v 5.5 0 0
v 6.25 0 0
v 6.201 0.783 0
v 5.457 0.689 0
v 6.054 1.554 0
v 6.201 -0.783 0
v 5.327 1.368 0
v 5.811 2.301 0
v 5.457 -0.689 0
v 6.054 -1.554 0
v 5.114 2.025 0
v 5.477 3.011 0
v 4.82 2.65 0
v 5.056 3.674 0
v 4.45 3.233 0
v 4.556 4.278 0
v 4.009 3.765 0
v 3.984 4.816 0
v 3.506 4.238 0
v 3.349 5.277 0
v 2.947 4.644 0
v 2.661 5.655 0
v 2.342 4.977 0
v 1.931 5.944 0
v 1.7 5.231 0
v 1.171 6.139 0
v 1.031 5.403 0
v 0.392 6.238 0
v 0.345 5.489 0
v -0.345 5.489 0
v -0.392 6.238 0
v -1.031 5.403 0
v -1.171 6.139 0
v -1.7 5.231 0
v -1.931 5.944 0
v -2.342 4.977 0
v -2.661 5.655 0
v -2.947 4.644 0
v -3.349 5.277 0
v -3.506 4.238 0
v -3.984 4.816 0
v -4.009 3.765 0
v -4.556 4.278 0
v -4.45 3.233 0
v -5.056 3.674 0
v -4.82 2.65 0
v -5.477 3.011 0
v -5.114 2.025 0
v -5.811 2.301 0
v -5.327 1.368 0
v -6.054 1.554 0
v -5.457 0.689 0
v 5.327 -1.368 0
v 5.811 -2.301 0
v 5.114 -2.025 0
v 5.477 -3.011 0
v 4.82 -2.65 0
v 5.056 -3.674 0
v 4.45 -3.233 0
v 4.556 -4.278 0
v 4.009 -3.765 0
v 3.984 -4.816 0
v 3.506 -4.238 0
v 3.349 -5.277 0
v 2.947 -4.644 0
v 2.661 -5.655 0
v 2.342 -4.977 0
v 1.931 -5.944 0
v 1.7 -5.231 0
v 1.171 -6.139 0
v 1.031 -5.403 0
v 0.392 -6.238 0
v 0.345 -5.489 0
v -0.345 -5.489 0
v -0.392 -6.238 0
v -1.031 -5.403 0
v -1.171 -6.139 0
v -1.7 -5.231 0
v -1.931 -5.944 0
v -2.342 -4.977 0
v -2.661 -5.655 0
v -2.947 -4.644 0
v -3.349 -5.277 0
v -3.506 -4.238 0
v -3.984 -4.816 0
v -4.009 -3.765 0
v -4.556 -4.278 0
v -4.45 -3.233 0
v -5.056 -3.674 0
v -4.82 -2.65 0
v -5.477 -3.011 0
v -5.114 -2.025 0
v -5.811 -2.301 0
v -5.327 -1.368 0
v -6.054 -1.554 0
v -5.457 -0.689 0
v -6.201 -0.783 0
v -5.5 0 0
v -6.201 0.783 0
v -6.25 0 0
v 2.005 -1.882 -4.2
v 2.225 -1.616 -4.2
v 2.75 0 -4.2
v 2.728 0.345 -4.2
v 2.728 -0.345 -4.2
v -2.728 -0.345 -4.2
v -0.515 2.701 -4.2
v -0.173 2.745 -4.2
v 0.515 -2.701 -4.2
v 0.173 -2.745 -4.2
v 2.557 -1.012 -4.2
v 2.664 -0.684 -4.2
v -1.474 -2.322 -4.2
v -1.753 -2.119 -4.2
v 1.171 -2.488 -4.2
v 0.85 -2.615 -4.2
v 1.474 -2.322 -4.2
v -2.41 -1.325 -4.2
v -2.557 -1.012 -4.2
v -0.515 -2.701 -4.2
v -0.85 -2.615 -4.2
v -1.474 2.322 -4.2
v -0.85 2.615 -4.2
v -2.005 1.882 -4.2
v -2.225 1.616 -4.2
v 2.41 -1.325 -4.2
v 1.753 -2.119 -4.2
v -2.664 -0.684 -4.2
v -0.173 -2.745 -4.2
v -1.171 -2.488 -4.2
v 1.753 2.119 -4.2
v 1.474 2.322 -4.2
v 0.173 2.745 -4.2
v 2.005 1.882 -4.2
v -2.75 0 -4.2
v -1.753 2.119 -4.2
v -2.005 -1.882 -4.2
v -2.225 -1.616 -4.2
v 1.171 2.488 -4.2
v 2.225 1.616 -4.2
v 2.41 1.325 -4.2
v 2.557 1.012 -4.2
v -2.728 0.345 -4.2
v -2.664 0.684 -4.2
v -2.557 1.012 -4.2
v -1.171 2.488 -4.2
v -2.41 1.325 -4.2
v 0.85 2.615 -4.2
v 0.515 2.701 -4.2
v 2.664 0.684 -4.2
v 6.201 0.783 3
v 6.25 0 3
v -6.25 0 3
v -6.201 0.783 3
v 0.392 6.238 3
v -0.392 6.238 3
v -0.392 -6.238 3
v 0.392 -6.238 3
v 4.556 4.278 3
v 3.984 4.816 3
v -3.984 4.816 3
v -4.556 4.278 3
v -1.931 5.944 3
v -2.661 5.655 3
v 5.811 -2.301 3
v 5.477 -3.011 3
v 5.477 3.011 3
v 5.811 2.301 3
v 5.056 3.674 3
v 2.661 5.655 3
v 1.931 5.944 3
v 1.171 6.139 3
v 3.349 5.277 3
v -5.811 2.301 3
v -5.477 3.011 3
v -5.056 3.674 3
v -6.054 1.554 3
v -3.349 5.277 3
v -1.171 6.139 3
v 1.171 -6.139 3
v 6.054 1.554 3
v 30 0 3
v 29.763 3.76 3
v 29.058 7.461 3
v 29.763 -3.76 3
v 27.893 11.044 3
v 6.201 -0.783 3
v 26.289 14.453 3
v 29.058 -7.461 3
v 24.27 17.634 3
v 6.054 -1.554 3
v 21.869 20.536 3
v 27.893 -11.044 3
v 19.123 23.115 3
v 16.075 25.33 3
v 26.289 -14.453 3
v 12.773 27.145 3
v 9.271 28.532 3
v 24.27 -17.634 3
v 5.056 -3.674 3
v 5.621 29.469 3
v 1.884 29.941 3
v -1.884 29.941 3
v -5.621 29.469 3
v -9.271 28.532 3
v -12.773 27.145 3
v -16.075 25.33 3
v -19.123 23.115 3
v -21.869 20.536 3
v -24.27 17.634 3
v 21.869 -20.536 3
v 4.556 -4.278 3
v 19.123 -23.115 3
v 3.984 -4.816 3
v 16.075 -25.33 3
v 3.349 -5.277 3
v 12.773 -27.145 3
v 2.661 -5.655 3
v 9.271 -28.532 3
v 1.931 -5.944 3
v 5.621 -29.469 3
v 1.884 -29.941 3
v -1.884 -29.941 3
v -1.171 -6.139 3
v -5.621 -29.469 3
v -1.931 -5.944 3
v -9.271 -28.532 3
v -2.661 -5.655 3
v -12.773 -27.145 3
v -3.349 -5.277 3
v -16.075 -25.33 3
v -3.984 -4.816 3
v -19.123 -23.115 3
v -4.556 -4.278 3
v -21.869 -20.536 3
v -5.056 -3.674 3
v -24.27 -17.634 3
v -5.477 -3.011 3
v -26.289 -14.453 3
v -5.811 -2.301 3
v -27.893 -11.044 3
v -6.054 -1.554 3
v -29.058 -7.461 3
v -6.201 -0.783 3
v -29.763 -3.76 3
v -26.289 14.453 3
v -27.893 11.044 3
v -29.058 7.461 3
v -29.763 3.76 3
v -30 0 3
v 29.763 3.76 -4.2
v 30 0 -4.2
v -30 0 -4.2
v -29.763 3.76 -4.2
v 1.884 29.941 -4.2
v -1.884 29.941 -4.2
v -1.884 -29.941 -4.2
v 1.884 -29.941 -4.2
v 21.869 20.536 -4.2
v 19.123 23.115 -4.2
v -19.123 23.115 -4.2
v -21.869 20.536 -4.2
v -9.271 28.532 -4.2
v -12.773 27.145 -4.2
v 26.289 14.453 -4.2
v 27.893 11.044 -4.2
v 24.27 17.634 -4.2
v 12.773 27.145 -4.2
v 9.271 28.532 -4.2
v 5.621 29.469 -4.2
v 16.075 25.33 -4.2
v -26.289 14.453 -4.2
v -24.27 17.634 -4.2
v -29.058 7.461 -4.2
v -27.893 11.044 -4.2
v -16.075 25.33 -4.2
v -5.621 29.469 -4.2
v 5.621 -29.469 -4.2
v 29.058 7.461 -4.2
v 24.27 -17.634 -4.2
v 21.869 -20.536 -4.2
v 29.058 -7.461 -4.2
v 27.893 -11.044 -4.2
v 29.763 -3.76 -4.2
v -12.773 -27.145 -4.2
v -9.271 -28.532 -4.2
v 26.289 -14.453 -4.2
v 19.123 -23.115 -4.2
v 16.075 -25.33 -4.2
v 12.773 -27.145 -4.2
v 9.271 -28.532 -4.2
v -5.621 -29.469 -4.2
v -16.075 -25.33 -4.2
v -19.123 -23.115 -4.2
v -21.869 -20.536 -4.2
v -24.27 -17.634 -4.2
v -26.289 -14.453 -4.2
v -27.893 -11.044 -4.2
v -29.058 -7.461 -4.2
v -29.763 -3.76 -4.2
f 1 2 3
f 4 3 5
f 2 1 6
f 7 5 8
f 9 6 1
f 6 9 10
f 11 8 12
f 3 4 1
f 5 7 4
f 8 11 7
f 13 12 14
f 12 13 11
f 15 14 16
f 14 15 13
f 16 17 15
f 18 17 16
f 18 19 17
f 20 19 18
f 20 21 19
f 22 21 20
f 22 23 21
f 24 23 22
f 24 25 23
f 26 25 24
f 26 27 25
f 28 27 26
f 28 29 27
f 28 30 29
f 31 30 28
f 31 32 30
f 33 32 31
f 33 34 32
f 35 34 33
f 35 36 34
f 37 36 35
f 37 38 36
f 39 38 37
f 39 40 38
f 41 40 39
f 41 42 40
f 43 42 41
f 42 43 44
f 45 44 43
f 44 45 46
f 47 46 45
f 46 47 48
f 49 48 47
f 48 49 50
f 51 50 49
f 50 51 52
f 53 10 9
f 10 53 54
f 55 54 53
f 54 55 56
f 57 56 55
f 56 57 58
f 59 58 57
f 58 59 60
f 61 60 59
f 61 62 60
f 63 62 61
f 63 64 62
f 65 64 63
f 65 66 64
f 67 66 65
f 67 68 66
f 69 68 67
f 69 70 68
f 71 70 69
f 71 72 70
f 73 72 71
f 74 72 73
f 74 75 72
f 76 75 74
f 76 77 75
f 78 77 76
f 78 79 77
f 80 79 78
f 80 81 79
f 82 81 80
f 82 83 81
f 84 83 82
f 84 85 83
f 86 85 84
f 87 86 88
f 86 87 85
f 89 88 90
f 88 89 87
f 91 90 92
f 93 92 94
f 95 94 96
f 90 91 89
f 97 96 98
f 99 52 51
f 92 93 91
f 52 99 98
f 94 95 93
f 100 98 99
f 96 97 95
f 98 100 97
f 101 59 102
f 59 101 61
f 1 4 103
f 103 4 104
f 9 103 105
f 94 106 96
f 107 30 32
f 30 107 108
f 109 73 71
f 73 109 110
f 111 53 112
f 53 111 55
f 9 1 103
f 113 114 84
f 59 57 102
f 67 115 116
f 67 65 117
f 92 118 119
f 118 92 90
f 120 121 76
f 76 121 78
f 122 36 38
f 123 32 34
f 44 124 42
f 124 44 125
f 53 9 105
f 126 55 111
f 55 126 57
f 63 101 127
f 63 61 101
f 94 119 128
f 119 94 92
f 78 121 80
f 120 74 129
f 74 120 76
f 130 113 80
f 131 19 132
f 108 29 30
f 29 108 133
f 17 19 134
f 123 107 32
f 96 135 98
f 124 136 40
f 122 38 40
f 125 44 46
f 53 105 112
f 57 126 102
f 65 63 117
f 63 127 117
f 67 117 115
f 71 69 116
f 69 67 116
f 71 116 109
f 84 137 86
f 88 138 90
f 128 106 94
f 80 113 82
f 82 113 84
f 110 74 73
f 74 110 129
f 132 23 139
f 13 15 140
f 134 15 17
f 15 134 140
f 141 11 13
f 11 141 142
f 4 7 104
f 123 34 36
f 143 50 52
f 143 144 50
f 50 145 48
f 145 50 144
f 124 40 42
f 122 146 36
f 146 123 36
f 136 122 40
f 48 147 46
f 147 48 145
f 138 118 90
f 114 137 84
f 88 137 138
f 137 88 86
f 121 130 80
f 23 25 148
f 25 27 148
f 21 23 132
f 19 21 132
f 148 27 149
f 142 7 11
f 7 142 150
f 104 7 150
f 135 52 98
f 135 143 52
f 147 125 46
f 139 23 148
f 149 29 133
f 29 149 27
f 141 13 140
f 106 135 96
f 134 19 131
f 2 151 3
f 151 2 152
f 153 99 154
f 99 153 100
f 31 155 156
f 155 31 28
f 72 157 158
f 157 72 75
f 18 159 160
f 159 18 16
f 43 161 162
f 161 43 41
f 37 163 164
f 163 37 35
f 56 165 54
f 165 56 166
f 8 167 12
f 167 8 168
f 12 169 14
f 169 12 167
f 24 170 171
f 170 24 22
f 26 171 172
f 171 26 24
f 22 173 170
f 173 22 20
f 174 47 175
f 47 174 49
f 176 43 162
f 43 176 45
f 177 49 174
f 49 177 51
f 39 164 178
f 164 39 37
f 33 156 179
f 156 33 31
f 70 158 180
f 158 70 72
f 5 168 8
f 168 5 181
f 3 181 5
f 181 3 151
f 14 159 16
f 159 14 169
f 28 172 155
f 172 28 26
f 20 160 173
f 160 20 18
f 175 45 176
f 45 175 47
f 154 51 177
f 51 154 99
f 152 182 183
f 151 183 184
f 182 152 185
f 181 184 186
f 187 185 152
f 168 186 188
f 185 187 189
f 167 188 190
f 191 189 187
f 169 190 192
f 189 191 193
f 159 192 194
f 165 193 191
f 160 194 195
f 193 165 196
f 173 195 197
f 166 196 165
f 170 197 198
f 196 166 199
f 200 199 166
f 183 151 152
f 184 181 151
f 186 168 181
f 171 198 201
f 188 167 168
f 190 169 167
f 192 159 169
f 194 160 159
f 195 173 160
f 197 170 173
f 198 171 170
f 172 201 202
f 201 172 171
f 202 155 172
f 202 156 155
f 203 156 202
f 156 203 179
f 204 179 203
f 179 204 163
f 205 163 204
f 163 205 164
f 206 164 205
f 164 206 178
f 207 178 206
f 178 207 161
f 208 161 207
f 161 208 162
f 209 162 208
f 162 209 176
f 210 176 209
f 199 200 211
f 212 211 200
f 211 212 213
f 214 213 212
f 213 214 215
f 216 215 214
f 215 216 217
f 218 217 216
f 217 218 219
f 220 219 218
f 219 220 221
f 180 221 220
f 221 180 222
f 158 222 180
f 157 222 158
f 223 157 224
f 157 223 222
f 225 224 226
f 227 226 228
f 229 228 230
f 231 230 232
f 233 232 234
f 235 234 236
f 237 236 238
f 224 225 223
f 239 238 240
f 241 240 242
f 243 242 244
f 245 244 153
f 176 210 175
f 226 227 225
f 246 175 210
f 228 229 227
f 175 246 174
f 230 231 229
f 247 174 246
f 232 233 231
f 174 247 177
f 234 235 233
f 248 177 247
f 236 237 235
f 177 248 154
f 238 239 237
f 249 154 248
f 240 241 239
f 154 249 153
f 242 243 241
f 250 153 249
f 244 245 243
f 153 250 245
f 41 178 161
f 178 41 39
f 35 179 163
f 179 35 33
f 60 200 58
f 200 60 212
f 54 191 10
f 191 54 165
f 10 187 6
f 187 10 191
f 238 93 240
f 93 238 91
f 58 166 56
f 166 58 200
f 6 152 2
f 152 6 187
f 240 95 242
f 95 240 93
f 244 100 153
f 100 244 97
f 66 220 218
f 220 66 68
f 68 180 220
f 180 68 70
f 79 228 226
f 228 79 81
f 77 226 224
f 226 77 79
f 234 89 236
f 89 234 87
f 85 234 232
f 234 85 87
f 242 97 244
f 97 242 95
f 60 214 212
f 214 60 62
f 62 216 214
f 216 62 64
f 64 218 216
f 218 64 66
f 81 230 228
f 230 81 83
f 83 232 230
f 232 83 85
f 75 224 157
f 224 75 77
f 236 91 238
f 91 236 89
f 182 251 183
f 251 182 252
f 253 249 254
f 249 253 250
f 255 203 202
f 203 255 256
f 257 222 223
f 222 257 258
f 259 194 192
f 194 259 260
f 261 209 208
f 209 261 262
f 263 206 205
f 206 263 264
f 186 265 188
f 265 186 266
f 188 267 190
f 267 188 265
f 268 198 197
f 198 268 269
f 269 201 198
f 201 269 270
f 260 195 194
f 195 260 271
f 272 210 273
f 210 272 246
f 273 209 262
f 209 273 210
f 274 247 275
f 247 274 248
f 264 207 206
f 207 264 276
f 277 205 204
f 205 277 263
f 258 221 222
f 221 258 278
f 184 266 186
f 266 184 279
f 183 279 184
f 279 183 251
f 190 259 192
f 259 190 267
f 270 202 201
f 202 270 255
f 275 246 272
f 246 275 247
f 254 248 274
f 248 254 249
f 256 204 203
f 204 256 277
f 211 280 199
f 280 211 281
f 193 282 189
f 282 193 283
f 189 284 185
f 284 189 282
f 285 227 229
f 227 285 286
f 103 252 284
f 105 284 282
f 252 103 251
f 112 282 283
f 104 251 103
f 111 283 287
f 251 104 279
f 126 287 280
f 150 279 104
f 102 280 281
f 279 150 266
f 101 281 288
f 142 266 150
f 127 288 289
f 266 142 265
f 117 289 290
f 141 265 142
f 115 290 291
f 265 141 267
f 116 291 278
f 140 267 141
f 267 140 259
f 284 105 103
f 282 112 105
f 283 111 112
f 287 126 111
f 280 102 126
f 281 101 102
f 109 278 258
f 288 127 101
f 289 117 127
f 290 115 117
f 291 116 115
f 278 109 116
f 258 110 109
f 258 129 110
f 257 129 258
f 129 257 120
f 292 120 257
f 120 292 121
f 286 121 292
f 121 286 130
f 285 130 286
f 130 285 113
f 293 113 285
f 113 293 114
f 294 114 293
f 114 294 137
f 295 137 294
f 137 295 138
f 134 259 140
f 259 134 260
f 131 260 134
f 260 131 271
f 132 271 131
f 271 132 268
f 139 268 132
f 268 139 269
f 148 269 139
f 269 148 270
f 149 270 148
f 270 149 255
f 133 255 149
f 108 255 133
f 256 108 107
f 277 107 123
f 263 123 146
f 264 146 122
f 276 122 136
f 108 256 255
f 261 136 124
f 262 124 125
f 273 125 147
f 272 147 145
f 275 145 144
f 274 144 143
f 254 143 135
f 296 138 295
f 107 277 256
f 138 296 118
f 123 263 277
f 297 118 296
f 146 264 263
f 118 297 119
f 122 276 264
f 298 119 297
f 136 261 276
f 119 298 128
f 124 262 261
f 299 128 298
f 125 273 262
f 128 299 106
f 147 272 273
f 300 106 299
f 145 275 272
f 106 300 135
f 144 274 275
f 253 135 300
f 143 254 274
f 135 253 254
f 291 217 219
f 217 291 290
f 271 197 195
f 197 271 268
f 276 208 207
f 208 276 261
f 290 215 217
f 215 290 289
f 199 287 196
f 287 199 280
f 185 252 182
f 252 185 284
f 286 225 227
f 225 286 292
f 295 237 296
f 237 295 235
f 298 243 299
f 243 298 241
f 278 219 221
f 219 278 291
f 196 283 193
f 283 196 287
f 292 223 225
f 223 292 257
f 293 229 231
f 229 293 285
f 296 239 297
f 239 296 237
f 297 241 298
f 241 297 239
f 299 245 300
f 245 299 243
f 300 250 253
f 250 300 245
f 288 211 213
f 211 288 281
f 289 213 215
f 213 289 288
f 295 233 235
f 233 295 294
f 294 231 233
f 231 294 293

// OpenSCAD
$fn = 50;

difference() {
	union() {
		translate(v = [0, 0, -4.2]) {
			cylinder(h = 7.2, r = 30.0);
		}
	}
	union() {
		translate(v = [0, 0, 0]) {
			rotate(a = [0, 0, 0]) {
				difference() {
					union() {
						translate(v = [0, 0, -7.2]) {
							cylinder(h = 7.2, r = 2.25);
						}
						translate(v = [0, 0, -4.2]) {
							cylinder(h = 4.2, r1 = 2.75, r2 = 5.5);
						}
						translate(v = [0, 0, -7.2]) {
							cylinder(h = 7.2, r = 2.75);
						}
						translate(v = [0, 0, -7.2]) {
							cylinder(h = 7.2, r = 2.25);
						}
					}
					union();
				}
			}
		}
		#cylinder(h = 3, r = 6.25);
	}
}
